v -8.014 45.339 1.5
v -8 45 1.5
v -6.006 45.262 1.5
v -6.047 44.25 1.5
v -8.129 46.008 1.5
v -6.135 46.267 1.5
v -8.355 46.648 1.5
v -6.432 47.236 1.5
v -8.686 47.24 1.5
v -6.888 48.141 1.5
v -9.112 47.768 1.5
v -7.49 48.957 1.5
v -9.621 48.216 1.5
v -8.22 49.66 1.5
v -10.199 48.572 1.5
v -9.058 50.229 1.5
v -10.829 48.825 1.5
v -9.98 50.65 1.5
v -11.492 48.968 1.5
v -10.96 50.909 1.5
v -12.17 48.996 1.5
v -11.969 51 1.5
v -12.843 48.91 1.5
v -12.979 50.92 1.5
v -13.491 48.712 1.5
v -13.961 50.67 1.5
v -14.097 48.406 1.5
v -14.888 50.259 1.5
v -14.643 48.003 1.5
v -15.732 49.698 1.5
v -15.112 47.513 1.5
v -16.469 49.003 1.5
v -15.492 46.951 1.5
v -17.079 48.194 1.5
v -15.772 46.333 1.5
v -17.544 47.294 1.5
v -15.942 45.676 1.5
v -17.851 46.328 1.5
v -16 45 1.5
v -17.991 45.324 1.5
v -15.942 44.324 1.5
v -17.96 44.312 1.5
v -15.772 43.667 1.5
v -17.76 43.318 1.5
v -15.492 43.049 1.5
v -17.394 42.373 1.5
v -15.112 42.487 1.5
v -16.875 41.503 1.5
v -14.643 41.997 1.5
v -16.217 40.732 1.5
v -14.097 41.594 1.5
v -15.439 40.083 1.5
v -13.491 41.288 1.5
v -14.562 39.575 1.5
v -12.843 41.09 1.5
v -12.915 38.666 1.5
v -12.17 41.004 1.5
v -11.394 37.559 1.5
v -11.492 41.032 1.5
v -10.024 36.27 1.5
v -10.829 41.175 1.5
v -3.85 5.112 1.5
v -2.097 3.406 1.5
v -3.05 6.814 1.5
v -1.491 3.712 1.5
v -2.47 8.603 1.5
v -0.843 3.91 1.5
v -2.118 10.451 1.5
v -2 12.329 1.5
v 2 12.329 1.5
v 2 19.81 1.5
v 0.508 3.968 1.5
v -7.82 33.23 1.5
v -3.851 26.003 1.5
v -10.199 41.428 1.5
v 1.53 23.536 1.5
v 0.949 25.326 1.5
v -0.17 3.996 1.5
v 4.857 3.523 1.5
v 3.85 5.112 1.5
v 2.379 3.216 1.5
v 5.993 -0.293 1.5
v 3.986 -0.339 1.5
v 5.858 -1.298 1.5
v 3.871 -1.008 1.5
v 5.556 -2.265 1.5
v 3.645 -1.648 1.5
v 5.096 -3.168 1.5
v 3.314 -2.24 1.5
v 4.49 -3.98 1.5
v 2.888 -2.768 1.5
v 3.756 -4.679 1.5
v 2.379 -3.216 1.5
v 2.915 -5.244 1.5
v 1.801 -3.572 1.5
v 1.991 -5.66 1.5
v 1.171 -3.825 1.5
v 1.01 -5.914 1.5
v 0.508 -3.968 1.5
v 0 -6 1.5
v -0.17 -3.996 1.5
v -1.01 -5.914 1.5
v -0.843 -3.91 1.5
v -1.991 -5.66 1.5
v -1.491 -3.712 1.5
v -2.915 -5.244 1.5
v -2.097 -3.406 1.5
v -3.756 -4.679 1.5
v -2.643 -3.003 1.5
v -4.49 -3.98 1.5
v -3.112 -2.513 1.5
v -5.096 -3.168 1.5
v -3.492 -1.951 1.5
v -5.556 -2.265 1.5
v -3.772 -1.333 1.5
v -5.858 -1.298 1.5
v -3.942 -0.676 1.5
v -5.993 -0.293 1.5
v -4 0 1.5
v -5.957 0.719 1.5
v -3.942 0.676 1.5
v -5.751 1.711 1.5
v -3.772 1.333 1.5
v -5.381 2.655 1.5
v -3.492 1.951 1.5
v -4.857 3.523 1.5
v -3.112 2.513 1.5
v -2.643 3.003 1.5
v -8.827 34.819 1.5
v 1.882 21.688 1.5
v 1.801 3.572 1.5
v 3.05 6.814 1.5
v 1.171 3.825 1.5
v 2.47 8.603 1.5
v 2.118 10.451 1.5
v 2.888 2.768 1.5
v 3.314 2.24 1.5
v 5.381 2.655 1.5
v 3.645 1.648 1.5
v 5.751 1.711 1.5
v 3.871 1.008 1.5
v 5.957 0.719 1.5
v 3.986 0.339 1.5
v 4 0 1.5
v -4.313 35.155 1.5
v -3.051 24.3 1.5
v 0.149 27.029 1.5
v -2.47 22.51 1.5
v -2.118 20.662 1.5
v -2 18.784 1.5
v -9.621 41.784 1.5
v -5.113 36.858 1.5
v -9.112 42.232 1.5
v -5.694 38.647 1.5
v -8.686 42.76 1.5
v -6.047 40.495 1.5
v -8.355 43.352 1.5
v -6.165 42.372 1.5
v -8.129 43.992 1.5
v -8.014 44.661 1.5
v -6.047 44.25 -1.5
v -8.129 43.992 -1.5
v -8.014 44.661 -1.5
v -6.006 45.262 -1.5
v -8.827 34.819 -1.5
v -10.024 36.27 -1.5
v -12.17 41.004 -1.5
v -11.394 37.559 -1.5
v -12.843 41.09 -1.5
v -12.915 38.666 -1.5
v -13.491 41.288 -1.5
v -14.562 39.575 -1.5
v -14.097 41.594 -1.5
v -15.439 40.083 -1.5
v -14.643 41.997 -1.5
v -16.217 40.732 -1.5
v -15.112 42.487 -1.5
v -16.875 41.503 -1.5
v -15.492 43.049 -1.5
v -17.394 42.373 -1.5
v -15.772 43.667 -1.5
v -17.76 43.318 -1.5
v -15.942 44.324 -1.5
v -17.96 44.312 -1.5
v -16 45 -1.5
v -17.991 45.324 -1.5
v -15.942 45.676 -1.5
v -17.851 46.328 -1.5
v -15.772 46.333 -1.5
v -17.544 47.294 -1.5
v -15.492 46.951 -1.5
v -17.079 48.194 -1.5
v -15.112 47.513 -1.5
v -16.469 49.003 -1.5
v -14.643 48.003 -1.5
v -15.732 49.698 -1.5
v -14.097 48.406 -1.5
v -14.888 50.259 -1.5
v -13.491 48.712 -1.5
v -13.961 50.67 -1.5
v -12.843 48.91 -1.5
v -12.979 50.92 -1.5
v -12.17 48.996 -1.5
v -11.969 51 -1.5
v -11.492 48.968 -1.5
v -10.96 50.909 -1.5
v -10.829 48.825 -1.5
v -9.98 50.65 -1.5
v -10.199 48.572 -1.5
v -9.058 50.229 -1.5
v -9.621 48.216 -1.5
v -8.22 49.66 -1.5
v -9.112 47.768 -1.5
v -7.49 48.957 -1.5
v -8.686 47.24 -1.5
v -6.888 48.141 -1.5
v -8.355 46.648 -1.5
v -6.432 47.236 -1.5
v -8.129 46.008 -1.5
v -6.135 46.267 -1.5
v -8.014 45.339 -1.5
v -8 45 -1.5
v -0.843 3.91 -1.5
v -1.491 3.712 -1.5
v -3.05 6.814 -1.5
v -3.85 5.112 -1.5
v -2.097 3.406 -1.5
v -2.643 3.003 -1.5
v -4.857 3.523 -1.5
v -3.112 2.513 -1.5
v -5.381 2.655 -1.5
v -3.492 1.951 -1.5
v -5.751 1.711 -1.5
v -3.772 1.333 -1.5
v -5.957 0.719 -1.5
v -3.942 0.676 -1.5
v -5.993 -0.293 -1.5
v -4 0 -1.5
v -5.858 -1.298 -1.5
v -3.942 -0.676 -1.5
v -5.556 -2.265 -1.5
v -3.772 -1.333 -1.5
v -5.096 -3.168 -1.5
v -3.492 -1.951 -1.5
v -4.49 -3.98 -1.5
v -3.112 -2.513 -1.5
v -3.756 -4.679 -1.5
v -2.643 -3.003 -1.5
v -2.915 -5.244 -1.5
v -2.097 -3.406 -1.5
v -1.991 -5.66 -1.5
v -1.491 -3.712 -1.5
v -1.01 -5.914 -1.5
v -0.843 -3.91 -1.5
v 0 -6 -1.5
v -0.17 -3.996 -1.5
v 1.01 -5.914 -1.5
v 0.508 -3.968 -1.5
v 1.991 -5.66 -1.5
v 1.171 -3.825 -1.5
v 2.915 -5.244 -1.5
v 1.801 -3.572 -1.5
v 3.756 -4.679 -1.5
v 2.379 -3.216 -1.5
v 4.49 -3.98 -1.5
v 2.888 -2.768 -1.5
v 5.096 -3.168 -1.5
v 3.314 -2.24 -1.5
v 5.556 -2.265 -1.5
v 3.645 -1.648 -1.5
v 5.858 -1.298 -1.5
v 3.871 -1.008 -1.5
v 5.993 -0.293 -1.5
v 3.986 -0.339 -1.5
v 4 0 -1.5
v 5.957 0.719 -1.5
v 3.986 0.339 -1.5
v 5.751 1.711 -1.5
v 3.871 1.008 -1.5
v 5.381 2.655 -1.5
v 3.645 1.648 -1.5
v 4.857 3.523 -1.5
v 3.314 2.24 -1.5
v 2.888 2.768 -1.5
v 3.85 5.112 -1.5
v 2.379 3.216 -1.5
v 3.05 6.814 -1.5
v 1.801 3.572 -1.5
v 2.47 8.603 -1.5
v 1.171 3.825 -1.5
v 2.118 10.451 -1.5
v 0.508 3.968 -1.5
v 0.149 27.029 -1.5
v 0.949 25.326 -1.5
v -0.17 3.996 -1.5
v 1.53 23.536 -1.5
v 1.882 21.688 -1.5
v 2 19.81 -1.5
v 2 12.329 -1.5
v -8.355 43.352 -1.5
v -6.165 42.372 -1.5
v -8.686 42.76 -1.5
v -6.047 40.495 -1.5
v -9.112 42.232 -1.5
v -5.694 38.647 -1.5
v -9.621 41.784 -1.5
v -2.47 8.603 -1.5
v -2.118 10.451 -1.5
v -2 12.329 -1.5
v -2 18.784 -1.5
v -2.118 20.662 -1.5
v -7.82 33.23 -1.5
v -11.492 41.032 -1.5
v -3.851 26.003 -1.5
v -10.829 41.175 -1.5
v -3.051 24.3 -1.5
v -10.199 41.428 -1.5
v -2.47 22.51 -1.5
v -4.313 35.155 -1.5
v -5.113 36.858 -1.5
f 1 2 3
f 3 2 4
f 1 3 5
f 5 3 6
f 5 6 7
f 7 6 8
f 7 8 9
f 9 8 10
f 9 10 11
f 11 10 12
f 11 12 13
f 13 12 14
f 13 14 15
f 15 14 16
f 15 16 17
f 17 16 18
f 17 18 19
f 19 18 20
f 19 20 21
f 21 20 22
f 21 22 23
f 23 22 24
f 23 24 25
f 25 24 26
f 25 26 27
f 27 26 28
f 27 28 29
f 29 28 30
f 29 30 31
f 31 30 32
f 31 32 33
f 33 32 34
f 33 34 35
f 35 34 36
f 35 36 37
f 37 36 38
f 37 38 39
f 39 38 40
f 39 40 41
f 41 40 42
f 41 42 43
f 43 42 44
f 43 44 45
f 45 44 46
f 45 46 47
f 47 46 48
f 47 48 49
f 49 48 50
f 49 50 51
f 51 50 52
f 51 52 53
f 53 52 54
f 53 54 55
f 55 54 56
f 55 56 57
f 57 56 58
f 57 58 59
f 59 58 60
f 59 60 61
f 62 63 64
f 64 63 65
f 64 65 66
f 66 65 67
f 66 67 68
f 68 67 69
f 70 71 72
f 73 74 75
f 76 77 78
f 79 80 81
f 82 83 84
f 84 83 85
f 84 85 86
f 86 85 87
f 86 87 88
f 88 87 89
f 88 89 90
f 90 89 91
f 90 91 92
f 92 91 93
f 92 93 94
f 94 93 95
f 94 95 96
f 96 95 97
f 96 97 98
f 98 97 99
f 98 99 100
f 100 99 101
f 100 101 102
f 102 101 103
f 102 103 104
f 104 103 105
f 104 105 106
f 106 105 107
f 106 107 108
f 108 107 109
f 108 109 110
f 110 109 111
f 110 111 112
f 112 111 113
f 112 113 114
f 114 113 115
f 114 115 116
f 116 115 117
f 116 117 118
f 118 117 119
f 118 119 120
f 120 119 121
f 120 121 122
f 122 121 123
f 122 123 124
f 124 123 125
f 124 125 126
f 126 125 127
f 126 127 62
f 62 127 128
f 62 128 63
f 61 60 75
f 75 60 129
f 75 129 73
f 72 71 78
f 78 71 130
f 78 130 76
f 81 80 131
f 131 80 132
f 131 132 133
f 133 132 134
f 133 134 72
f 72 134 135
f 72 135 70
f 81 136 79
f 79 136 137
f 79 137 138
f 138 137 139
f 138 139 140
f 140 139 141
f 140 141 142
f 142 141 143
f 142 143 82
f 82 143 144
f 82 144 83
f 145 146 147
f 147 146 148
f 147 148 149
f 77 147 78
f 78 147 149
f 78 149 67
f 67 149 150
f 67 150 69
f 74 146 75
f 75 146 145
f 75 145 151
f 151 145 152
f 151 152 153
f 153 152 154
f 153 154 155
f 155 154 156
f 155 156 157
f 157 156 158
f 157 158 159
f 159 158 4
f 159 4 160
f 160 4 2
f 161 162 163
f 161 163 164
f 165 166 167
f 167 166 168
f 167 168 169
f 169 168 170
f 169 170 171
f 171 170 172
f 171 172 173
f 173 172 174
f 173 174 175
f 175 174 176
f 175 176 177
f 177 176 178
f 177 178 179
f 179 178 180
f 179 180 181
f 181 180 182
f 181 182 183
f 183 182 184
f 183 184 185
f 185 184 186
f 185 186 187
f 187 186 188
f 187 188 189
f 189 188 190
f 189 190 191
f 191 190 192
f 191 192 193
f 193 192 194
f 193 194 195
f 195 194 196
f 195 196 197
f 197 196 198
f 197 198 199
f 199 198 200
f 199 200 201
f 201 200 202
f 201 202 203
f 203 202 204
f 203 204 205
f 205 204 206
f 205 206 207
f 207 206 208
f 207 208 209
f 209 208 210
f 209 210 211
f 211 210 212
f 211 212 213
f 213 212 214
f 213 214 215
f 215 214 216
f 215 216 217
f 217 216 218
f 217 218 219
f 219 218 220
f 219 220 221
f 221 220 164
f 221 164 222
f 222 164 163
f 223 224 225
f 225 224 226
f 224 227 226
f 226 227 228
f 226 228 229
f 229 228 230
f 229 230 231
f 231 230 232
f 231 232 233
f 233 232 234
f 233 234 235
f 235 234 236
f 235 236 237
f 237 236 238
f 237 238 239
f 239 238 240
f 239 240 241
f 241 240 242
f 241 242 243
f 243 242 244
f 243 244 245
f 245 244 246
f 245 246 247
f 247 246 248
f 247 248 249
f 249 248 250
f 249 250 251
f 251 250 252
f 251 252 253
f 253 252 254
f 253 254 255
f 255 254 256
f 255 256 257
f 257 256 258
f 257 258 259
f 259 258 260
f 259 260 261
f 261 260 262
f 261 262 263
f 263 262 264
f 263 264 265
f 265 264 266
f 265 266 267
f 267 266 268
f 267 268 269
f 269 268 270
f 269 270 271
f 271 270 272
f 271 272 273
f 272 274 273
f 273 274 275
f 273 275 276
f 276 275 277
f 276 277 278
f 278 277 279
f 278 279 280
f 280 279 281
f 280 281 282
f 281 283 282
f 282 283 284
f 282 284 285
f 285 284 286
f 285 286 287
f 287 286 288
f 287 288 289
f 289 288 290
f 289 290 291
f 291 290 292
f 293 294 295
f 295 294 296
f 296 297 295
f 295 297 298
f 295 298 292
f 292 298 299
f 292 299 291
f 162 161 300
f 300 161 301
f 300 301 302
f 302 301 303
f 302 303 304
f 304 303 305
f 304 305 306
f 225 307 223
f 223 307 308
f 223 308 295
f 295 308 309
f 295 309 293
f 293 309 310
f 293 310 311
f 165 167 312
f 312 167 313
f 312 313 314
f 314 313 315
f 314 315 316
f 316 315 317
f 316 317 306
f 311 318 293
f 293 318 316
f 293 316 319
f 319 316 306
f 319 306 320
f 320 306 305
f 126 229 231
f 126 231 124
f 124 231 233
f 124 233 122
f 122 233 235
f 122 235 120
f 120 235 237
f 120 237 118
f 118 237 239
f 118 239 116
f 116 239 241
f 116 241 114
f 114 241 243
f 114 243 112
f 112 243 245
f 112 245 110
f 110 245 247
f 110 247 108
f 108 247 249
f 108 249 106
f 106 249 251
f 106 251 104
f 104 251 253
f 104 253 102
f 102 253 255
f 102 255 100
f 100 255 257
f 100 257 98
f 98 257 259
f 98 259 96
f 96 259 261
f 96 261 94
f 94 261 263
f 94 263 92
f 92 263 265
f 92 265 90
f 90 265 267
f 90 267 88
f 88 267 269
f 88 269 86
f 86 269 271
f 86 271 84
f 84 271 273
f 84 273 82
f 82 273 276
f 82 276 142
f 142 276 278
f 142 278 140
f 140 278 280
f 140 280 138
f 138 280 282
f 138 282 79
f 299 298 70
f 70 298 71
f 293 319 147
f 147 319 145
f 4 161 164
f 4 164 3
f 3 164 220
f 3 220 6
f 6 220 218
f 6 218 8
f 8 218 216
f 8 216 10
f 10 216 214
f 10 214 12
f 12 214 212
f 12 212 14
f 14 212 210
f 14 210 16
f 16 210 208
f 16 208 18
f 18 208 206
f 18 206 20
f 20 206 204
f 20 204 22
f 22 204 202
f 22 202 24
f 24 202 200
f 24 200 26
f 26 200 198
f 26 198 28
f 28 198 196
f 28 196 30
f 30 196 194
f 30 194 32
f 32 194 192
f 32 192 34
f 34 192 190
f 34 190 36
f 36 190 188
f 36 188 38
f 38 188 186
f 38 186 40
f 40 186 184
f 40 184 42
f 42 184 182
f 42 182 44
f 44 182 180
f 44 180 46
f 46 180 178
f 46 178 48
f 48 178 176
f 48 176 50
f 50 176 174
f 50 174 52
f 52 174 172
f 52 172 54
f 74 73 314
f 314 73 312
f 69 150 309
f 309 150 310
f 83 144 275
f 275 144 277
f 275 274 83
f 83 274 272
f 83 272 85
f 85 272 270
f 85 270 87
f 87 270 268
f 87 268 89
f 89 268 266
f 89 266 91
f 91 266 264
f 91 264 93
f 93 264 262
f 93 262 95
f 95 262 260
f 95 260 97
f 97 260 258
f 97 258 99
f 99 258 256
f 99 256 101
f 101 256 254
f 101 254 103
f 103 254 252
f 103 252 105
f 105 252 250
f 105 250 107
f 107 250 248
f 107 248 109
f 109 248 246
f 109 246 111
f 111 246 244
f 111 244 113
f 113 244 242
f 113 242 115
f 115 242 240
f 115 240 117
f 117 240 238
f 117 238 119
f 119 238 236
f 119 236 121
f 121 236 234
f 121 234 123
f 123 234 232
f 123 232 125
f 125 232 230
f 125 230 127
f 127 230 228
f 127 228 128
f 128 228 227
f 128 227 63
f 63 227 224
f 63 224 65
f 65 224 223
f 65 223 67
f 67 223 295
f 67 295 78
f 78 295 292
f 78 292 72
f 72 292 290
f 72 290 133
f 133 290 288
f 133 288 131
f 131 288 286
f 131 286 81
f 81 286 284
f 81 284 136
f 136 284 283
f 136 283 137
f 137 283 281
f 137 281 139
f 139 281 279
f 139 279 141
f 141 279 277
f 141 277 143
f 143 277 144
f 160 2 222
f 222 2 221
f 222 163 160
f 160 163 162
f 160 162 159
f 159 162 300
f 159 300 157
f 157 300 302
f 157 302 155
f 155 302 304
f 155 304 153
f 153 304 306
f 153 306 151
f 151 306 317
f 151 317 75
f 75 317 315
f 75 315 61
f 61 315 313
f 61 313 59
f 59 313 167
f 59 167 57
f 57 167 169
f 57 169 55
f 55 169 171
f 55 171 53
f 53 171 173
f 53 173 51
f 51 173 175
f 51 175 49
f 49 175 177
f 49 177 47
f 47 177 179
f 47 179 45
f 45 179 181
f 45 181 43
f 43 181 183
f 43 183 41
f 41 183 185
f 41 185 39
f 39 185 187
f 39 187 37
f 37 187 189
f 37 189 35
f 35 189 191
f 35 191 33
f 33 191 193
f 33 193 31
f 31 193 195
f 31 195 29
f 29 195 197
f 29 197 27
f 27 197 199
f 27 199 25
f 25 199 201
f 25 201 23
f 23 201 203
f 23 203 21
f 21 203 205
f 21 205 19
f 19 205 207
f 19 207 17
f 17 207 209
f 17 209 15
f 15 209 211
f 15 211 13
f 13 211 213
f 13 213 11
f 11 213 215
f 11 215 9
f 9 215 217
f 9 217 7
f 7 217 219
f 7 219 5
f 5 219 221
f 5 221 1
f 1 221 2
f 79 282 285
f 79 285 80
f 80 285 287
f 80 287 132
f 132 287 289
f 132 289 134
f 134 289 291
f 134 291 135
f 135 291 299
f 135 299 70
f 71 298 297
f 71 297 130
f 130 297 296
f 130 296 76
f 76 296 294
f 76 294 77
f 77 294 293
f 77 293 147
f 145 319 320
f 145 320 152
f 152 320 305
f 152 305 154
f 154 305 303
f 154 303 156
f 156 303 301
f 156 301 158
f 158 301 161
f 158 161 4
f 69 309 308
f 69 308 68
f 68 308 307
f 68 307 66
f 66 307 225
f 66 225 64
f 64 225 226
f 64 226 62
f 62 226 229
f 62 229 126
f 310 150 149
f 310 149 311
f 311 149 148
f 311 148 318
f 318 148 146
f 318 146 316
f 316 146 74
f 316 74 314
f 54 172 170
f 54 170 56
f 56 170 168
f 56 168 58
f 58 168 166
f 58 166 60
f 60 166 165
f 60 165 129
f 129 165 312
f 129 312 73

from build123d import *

# Parameters (mm, degrees)
SKETCH1_R           = 4
BOSS_EXTRUDE1_DEPTH = 1.5
FILLET3_R           = 15


with BuildPart() as part:
    # Sketch1 → Boss-Extrude1 (new, symmetric)
    with BuildSketch(Plane.XY):
        with BuildLine():
            Line((-2, 5.656854249), (-2, 22.630988629))
            Line((-2, 22.630988629), (-11.030624508, 39.078825188))
            ThreePointArc((-11.030624508, 39.078825188), (-14.887660916, 50.259411986), (-7.524349851, 41.003932465))
            Line((-7.524349851, 41.003932465), (2, 23.656854249))
            Line((2, 23.656854249), (2, 5.656854249))
            ThreePointArc((2, 5.656854249), (0, -6), (-2, 5.656854249))
        make_face()
        Circle(SKETCH1_R, mode=Mode.SUBTRACT)
        with Locations((-12, 45)):
            Circle(SKETCH1_R, mode=Mode.SUBTRACT)
    extrude(amount=BOSS_EXTRUDE1_DEPTH, both=True)

    # Fillet3
    fillet3_edges = [part.edges().sort_by_distance(p)[0] for p in [
        (-2, 5.656854249, 0),
        (-2, 22.630988629, 0),
        (-11.030624508, 39.078825188, 0),
        (-7.524349851, 41.003932465, 0),
        (2, 23.656854249, 0),
        (2, 5.656854249, 0),
    ]]
    fillet(fillet3_edges, radius=FILLET3_R)


solid = part.part
